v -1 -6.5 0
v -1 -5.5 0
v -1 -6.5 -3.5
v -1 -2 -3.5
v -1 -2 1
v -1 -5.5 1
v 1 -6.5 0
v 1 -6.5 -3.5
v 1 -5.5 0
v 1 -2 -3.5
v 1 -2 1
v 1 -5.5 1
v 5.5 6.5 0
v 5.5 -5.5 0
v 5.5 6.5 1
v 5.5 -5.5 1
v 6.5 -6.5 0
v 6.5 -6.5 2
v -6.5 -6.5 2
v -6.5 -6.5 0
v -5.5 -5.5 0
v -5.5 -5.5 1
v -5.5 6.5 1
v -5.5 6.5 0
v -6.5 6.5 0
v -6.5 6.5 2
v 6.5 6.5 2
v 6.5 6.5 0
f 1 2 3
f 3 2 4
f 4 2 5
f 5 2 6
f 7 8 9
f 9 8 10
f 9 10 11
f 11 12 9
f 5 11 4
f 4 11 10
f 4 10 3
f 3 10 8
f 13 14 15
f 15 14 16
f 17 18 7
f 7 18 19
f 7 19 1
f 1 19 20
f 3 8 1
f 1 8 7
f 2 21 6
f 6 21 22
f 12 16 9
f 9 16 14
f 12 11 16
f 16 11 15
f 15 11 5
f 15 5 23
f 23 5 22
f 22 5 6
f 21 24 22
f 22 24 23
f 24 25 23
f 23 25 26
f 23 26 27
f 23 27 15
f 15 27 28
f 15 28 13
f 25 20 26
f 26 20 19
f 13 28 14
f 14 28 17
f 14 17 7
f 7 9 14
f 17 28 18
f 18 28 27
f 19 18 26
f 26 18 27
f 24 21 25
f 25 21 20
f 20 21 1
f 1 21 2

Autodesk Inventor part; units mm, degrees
ref_plane "YZ Plane" through (0, 0, 0) normal (1, 0, 0) x (0, 1, 0)
ref_plane "XZ Plane" through (0, 0, 0) normal (0, 1, 0) x (-1, 0, 0)
ref_plane "XY Plane" through (0, 0, 0) normal (0, 0, 1) x (1, 0, 0)
sketch "Sketch1" plane through (0, 0, 0) normal (0, 0, 1) x (1, 0, 0)
  line L0 (-6.5, -6.5) -> (6.5, -6.5)
  line L1 (6.5, -6.5) -> (6.5, 6.5)
  line L2 (6.5, 6.5) -> (-6.5, 6.5)
  line L3 (-6.5, 6.5) -> (-6.5, -6.5)
  line L4 (-6.5, -6.5) -> (6.5, 6.5) construction
  line L5 (6.5, -6.5) -> (-6.5, 6.5) construction
  line L6 (-5.5, 5.5) -> (5.5, 5.5)
  line L7 (5.5, 5.5) -> (5.5, -5.5)
  line L8 (5.5, -5.5) -> (-5.5, -5.5)
  line L9 (-5.5, -5.5) -> (-5.5, 5.5)
  point P0 (0, 0)
  dimension "d0" = 13
  dimension "d1" = 13
  dimension "d2" = 1
extrude "Extrusion1" add sketch "Sketch1" along normal blind 2 contours L3 L2 L1 L0 | L6 L7 L8 L9
extrude "Extrusion2" cut sketch "Sketch1" along normal blind 1 contours L6 L7 L8 L9
sketch "Sketch2" plane through (0, 0, 2) normal (0, 0, 1) x (1, 0, 0)
  line L0 (-6.5, -6.5) -> (6.5, -6.5) projected
  line L1 (-1, -6.5) -> (1, -6.5)
  line L2 (1, -6.5) -> (1, -2)
  line L3 (1, -2) -> (-1, -2)
  line L4 (-1, -2) -> (-1, -6.5)
  point P0 (0, 0)
  point P1 (0, -6.5)
  dimension "d7" = 2
  dimension "d8" = 4.5
  dimension "d9" = 1
extrude "Extrusion3" add sketch "Sketch2" against normal blind 5.5
sketch "Sketch3" plane through (0, 0, 0) normal (0, 0, -1) x (-1, 0, 0)
  line L0 (-5.5, 5.5) -> (5.5, 5.5) projected
  line L1 (-6.5, 6.5) -> (6.5, 6.5) projected
  line L2 (-5.5, 5.5) -> (5.5, 5.5)
  line L3 (5.5, 5.5) -> (5.5, 6.5)
  line L4 (5.5, 6.5) -> (-5.5, 6.5)
  line L5 (-5.5, 6.5) -> (-5.5, 5.5)
  point P0 (0, 0)
  dimension "d12" = 11
extrude "Extrusion4" cut sketch "Sketch3" against normal blind 1
properties part number "NV_module_lid_2" material "PET Plastic"
